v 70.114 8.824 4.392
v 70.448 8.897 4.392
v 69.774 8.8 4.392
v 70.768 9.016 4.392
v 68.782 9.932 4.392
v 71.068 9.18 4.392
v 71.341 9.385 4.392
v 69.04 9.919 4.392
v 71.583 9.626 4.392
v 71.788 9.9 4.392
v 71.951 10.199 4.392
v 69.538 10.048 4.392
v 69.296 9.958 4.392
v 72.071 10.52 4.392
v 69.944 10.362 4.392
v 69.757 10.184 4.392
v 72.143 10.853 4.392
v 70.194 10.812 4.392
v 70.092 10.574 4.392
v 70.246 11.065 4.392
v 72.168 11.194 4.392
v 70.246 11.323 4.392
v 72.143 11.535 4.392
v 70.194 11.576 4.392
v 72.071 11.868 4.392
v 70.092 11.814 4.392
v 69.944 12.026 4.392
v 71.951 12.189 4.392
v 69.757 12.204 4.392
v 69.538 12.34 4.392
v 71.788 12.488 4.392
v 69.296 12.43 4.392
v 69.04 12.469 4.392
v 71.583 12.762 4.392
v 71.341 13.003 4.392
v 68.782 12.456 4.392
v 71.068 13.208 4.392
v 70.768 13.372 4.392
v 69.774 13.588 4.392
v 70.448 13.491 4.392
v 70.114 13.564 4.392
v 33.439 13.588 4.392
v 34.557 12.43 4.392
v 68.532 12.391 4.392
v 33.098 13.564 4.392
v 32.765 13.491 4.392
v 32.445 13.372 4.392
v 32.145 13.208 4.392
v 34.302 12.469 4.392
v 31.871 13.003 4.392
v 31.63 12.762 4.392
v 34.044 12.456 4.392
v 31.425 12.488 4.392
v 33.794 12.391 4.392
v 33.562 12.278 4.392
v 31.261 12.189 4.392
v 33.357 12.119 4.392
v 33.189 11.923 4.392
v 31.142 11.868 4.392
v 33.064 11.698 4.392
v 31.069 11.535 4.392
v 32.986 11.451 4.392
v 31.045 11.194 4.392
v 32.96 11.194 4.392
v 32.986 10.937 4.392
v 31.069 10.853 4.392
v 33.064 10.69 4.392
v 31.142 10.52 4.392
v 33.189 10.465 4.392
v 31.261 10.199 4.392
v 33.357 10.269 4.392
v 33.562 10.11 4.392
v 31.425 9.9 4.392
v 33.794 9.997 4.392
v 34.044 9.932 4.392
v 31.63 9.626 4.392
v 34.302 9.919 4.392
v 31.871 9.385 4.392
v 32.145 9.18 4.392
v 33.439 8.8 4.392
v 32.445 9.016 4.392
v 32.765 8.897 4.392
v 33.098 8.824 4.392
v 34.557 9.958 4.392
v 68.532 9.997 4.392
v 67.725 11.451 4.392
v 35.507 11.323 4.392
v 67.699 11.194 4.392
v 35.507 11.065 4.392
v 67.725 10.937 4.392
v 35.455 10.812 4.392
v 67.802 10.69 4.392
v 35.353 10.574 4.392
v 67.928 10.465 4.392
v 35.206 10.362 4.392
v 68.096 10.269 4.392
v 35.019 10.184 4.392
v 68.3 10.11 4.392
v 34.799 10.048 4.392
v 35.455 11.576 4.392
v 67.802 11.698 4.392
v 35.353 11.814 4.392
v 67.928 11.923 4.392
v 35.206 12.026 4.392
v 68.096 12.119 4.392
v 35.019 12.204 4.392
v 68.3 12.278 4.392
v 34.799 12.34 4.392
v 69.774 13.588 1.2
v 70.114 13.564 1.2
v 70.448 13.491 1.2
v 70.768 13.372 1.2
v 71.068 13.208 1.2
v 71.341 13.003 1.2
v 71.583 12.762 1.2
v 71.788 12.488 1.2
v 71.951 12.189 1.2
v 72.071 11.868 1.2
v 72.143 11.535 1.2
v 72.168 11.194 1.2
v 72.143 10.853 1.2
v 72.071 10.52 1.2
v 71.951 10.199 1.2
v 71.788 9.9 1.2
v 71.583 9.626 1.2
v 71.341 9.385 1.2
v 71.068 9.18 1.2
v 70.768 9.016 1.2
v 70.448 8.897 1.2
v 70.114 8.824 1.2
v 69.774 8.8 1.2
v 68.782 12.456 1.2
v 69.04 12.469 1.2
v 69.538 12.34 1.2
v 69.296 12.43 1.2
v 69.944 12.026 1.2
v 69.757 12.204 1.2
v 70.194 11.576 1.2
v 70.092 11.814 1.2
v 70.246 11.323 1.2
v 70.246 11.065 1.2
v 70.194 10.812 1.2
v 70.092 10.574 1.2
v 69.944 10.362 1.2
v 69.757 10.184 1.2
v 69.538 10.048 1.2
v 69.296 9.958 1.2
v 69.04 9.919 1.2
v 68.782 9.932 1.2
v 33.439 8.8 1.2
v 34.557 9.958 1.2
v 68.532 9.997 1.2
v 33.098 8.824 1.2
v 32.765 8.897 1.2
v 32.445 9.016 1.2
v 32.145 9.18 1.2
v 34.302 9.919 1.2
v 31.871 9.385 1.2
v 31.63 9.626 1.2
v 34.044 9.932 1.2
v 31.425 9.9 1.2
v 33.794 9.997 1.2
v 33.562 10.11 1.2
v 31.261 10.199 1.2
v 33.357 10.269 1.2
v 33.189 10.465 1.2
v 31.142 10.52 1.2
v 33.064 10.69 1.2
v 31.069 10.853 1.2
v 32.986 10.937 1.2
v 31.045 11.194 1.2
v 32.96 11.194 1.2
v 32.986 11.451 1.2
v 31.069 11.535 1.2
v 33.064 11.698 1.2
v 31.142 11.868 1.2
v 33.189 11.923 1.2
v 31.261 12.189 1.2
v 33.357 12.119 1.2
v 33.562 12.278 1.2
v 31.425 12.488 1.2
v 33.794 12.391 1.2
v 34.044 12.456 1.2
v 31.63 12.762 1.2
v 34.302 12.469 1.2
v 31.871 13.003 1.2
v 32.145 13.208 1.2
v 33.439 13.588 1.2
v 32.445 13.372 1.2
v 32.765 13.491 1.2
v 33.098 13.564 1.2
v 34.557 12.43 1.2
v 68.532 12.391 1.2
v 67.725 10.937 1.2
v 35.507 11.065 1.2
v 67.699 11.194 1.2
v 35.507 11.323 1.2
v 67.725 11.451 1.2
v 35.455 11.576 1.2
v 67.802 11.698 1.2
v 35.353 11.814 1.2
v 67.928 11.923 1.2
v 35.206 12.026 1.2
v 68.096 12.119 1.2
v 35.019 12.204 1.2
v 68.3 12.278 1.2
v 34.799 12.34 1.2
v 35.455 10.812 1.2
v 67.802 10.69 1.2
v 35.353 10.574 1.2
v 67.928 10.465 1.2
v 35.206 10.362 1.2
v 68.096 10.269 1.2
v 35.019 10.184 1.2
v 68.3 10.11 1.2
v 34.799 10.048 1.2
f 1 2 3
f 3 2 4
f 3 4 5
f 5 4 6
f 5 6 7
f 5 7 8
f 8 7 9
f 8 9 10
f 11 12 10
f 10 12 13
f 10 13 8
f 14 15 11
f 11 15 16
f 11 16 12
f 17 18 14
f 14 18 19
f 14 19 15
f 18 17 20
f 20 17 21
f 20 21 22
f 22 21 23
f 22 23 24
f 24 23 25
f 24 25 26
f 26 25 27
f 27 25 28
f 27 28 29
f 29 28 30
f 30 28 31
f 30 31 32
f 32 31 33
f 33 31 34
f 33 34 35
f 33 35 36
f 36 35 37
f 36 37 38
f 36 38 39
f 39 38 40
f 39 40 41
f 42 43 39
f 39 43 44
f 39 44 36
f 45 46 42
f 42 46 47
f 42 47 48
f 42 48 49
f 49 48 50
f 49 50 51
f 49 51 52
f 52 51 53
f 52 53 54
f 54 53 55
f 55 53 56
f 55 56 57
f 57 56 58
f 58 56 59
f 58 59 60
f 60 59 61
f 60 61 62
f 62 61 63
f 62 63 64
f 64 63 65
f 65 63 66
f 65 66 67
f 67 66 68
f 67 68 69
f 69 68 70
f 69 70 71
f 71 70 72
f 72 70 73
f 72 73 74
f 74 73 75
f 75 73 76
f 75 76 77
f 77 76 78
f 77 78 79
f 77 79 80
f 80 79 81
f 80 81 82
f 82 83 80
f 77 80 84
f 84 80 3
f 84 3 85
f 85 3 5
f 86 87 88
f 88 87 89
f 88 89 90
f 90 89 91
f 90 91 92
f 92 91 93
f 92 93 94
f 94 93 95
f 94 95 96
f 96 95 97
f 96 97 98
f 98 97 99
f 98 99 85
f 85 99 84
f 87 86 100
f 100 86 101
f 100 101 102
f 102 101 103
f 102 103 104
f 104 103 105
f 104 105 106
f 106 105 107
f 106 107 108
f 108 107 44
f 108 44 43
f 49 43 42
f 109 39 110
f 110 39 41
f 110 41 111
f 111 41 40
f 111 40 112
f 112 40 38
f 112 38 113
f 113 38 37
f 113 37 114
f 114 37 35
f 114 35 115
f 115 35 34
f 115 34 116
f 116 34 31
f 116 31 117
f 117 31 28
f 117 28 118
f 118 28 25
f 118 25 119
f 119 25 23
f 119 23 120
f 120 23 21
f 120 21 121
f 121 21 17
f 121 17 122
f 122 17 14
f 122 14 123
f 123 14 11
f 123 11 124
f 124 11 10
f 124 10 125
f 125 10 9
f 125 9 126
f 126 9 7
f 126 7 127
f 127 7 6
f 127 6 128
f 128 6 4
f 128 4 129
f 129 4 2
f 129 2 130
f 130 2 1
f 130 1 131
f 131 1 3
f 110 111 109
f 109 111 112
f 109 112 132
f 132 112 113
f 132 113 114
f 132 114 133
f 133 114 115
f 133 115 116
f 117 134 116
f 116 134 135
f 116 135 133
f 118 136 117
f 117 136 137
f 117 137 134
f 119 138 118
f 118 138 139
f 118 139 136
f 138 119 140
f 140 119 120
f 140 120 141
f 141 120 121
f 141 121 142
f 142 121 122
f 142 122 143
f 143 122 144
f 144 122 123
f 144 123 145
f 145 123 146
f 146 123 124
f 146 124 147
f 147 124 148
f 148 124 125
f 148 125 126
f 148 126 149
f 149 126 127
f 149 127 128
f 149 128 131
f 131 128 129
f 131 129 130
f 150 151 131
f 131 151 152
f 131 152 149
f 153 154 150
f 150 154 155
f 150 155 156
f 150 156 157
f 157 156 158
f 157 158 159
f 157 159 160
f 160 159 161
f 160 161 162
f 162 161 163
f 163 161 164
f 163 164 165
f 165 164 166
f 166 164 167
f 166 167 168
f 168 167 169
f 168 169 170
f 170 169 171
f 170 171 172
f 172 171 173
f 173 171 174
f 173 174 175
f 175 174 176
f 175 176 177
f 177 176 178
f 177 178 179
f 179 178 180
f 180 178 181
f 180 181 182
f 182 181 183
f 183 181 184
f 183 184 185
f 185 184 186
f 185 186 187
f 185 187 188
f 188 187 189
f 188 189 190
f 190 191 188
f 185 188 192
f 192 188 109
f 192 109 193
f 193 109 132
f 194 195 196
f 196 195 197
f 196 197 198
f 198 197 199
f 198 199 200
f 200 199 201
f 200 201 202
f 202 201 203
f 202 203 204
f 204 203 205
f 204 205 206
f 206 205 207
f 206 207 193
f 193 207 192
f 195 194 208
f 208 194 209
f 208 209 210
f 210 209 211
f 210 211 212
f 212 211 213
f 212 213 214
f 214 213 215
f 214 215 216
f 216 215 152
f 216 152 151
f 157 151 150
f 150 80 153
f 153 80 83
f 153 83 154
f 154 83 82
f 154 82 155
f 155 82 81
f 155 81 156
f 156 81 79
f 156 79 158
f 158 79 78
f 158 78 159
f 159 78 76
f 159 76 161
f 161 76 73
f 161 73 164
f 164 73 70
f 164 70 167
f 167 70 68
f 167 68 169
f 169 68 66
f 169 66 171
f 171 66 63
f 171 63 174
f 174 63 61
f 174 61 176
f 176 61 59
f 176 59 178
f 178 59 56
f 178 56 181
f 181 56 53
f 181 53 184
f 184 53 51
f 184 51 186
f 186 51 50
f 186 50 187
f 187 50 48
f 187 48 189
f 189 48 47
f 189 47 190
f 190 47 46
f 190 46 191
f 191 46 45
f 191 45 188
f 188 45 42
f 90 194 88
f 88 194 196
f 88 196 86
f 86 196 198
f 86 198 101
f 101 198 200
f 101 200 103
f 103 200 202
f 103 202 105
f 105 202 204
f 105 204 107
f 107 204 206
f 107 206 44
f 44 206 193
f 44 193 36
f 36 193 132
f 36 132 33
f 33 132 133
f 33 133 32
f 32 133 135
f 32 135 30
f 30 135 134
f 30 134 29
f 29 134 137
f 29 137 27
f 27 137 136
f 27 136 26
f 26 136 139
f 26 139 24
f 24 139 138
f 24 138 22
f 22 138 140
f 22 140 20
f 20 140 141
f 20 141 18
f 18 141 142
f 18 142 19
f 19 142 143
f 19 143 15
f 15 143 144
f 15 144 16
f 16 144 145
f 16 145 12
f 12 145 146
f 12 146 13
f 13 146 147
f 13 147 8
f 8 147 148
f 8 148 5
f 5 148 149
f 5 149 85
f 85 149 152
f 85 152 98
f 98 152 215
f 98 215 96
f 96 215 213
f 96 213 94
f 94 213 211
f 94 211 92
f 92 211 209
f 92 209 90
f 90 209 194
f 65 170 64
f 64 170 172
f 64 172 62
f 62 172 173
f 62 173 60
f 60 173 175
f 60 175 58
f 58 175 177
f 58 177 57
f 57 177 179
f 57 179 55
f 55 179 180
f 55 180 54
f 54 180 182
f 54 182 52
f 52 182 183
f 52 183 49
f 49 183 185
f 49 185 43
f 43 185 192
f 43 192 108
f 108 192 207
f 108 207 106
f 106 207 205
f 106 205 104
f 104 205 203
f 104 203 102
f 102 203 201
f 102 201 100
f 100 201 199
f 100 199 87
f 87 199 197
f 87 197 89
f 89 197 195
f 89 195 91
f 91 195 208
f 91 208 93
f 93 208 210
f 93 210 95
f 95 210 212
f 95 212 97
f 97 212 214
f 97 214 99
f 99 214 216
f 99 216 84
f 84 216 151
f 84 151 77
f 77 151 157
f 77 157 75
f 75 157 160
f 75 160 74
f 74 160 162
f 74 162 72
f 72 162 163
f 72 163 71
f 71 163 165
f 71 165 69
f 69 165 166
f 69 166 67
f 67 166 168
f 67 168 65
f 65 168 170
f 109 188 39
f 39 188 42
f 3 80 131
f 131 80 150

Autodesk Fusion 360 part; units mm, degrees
sketch "Esboço1" plane through (0, 0, 0) normal (0, 0, 1) x (1, 0, 0)
  line L0 (16.7794, 7) -> (68.3114, 7)
  line L1 (68.3114, 7) -> (68.3114, 13)
  line L2 (68.3114, 13) -> (16.7794, 13)
  line L3 (16.7794, 13) -> (16.7794, 7)
  circle A0 centre (20.7794, 10) radius 1.6
  circle A1 centre (64.3114, 10) radius 1.6
  dimension "d1" = 3.2
  dimension "d2" = 3.2
  dimension "d3" = 43.532
  dimension "d4" = 4
  dimension "d6" = 6
  dimension "d7" = 3
  dimension "d14" = 4
extrude "Extrusão1" add sketch "Esboço1" along normal blind 4 makes body 1
fillet "Arredondamento1" radius 3 2 edges at (16.7794, 13, 2) (16.7794, 7, 2) on bodies 1
fillet "Arredondamento2" radius 3 2 edges at (68.3114, 13, 2) (68.3114, 7, 2) on bodies 1
copy_body "Corpo -> Componente1" bodies 1 removing the originals makes body 2 in component "Component"
scale "Escala1" factor 0.7 about (65.3114, 13, 4) bodies 2 in component "Component"
scale "Escala2" factor 1.14 about (33.439, 8.8, 1.2) bodies 2 in component "Component"
component "Component" placed x (1, 0, 0) y (0, 1, 0) z (0, 0, 1) at (0, 0, 0)
